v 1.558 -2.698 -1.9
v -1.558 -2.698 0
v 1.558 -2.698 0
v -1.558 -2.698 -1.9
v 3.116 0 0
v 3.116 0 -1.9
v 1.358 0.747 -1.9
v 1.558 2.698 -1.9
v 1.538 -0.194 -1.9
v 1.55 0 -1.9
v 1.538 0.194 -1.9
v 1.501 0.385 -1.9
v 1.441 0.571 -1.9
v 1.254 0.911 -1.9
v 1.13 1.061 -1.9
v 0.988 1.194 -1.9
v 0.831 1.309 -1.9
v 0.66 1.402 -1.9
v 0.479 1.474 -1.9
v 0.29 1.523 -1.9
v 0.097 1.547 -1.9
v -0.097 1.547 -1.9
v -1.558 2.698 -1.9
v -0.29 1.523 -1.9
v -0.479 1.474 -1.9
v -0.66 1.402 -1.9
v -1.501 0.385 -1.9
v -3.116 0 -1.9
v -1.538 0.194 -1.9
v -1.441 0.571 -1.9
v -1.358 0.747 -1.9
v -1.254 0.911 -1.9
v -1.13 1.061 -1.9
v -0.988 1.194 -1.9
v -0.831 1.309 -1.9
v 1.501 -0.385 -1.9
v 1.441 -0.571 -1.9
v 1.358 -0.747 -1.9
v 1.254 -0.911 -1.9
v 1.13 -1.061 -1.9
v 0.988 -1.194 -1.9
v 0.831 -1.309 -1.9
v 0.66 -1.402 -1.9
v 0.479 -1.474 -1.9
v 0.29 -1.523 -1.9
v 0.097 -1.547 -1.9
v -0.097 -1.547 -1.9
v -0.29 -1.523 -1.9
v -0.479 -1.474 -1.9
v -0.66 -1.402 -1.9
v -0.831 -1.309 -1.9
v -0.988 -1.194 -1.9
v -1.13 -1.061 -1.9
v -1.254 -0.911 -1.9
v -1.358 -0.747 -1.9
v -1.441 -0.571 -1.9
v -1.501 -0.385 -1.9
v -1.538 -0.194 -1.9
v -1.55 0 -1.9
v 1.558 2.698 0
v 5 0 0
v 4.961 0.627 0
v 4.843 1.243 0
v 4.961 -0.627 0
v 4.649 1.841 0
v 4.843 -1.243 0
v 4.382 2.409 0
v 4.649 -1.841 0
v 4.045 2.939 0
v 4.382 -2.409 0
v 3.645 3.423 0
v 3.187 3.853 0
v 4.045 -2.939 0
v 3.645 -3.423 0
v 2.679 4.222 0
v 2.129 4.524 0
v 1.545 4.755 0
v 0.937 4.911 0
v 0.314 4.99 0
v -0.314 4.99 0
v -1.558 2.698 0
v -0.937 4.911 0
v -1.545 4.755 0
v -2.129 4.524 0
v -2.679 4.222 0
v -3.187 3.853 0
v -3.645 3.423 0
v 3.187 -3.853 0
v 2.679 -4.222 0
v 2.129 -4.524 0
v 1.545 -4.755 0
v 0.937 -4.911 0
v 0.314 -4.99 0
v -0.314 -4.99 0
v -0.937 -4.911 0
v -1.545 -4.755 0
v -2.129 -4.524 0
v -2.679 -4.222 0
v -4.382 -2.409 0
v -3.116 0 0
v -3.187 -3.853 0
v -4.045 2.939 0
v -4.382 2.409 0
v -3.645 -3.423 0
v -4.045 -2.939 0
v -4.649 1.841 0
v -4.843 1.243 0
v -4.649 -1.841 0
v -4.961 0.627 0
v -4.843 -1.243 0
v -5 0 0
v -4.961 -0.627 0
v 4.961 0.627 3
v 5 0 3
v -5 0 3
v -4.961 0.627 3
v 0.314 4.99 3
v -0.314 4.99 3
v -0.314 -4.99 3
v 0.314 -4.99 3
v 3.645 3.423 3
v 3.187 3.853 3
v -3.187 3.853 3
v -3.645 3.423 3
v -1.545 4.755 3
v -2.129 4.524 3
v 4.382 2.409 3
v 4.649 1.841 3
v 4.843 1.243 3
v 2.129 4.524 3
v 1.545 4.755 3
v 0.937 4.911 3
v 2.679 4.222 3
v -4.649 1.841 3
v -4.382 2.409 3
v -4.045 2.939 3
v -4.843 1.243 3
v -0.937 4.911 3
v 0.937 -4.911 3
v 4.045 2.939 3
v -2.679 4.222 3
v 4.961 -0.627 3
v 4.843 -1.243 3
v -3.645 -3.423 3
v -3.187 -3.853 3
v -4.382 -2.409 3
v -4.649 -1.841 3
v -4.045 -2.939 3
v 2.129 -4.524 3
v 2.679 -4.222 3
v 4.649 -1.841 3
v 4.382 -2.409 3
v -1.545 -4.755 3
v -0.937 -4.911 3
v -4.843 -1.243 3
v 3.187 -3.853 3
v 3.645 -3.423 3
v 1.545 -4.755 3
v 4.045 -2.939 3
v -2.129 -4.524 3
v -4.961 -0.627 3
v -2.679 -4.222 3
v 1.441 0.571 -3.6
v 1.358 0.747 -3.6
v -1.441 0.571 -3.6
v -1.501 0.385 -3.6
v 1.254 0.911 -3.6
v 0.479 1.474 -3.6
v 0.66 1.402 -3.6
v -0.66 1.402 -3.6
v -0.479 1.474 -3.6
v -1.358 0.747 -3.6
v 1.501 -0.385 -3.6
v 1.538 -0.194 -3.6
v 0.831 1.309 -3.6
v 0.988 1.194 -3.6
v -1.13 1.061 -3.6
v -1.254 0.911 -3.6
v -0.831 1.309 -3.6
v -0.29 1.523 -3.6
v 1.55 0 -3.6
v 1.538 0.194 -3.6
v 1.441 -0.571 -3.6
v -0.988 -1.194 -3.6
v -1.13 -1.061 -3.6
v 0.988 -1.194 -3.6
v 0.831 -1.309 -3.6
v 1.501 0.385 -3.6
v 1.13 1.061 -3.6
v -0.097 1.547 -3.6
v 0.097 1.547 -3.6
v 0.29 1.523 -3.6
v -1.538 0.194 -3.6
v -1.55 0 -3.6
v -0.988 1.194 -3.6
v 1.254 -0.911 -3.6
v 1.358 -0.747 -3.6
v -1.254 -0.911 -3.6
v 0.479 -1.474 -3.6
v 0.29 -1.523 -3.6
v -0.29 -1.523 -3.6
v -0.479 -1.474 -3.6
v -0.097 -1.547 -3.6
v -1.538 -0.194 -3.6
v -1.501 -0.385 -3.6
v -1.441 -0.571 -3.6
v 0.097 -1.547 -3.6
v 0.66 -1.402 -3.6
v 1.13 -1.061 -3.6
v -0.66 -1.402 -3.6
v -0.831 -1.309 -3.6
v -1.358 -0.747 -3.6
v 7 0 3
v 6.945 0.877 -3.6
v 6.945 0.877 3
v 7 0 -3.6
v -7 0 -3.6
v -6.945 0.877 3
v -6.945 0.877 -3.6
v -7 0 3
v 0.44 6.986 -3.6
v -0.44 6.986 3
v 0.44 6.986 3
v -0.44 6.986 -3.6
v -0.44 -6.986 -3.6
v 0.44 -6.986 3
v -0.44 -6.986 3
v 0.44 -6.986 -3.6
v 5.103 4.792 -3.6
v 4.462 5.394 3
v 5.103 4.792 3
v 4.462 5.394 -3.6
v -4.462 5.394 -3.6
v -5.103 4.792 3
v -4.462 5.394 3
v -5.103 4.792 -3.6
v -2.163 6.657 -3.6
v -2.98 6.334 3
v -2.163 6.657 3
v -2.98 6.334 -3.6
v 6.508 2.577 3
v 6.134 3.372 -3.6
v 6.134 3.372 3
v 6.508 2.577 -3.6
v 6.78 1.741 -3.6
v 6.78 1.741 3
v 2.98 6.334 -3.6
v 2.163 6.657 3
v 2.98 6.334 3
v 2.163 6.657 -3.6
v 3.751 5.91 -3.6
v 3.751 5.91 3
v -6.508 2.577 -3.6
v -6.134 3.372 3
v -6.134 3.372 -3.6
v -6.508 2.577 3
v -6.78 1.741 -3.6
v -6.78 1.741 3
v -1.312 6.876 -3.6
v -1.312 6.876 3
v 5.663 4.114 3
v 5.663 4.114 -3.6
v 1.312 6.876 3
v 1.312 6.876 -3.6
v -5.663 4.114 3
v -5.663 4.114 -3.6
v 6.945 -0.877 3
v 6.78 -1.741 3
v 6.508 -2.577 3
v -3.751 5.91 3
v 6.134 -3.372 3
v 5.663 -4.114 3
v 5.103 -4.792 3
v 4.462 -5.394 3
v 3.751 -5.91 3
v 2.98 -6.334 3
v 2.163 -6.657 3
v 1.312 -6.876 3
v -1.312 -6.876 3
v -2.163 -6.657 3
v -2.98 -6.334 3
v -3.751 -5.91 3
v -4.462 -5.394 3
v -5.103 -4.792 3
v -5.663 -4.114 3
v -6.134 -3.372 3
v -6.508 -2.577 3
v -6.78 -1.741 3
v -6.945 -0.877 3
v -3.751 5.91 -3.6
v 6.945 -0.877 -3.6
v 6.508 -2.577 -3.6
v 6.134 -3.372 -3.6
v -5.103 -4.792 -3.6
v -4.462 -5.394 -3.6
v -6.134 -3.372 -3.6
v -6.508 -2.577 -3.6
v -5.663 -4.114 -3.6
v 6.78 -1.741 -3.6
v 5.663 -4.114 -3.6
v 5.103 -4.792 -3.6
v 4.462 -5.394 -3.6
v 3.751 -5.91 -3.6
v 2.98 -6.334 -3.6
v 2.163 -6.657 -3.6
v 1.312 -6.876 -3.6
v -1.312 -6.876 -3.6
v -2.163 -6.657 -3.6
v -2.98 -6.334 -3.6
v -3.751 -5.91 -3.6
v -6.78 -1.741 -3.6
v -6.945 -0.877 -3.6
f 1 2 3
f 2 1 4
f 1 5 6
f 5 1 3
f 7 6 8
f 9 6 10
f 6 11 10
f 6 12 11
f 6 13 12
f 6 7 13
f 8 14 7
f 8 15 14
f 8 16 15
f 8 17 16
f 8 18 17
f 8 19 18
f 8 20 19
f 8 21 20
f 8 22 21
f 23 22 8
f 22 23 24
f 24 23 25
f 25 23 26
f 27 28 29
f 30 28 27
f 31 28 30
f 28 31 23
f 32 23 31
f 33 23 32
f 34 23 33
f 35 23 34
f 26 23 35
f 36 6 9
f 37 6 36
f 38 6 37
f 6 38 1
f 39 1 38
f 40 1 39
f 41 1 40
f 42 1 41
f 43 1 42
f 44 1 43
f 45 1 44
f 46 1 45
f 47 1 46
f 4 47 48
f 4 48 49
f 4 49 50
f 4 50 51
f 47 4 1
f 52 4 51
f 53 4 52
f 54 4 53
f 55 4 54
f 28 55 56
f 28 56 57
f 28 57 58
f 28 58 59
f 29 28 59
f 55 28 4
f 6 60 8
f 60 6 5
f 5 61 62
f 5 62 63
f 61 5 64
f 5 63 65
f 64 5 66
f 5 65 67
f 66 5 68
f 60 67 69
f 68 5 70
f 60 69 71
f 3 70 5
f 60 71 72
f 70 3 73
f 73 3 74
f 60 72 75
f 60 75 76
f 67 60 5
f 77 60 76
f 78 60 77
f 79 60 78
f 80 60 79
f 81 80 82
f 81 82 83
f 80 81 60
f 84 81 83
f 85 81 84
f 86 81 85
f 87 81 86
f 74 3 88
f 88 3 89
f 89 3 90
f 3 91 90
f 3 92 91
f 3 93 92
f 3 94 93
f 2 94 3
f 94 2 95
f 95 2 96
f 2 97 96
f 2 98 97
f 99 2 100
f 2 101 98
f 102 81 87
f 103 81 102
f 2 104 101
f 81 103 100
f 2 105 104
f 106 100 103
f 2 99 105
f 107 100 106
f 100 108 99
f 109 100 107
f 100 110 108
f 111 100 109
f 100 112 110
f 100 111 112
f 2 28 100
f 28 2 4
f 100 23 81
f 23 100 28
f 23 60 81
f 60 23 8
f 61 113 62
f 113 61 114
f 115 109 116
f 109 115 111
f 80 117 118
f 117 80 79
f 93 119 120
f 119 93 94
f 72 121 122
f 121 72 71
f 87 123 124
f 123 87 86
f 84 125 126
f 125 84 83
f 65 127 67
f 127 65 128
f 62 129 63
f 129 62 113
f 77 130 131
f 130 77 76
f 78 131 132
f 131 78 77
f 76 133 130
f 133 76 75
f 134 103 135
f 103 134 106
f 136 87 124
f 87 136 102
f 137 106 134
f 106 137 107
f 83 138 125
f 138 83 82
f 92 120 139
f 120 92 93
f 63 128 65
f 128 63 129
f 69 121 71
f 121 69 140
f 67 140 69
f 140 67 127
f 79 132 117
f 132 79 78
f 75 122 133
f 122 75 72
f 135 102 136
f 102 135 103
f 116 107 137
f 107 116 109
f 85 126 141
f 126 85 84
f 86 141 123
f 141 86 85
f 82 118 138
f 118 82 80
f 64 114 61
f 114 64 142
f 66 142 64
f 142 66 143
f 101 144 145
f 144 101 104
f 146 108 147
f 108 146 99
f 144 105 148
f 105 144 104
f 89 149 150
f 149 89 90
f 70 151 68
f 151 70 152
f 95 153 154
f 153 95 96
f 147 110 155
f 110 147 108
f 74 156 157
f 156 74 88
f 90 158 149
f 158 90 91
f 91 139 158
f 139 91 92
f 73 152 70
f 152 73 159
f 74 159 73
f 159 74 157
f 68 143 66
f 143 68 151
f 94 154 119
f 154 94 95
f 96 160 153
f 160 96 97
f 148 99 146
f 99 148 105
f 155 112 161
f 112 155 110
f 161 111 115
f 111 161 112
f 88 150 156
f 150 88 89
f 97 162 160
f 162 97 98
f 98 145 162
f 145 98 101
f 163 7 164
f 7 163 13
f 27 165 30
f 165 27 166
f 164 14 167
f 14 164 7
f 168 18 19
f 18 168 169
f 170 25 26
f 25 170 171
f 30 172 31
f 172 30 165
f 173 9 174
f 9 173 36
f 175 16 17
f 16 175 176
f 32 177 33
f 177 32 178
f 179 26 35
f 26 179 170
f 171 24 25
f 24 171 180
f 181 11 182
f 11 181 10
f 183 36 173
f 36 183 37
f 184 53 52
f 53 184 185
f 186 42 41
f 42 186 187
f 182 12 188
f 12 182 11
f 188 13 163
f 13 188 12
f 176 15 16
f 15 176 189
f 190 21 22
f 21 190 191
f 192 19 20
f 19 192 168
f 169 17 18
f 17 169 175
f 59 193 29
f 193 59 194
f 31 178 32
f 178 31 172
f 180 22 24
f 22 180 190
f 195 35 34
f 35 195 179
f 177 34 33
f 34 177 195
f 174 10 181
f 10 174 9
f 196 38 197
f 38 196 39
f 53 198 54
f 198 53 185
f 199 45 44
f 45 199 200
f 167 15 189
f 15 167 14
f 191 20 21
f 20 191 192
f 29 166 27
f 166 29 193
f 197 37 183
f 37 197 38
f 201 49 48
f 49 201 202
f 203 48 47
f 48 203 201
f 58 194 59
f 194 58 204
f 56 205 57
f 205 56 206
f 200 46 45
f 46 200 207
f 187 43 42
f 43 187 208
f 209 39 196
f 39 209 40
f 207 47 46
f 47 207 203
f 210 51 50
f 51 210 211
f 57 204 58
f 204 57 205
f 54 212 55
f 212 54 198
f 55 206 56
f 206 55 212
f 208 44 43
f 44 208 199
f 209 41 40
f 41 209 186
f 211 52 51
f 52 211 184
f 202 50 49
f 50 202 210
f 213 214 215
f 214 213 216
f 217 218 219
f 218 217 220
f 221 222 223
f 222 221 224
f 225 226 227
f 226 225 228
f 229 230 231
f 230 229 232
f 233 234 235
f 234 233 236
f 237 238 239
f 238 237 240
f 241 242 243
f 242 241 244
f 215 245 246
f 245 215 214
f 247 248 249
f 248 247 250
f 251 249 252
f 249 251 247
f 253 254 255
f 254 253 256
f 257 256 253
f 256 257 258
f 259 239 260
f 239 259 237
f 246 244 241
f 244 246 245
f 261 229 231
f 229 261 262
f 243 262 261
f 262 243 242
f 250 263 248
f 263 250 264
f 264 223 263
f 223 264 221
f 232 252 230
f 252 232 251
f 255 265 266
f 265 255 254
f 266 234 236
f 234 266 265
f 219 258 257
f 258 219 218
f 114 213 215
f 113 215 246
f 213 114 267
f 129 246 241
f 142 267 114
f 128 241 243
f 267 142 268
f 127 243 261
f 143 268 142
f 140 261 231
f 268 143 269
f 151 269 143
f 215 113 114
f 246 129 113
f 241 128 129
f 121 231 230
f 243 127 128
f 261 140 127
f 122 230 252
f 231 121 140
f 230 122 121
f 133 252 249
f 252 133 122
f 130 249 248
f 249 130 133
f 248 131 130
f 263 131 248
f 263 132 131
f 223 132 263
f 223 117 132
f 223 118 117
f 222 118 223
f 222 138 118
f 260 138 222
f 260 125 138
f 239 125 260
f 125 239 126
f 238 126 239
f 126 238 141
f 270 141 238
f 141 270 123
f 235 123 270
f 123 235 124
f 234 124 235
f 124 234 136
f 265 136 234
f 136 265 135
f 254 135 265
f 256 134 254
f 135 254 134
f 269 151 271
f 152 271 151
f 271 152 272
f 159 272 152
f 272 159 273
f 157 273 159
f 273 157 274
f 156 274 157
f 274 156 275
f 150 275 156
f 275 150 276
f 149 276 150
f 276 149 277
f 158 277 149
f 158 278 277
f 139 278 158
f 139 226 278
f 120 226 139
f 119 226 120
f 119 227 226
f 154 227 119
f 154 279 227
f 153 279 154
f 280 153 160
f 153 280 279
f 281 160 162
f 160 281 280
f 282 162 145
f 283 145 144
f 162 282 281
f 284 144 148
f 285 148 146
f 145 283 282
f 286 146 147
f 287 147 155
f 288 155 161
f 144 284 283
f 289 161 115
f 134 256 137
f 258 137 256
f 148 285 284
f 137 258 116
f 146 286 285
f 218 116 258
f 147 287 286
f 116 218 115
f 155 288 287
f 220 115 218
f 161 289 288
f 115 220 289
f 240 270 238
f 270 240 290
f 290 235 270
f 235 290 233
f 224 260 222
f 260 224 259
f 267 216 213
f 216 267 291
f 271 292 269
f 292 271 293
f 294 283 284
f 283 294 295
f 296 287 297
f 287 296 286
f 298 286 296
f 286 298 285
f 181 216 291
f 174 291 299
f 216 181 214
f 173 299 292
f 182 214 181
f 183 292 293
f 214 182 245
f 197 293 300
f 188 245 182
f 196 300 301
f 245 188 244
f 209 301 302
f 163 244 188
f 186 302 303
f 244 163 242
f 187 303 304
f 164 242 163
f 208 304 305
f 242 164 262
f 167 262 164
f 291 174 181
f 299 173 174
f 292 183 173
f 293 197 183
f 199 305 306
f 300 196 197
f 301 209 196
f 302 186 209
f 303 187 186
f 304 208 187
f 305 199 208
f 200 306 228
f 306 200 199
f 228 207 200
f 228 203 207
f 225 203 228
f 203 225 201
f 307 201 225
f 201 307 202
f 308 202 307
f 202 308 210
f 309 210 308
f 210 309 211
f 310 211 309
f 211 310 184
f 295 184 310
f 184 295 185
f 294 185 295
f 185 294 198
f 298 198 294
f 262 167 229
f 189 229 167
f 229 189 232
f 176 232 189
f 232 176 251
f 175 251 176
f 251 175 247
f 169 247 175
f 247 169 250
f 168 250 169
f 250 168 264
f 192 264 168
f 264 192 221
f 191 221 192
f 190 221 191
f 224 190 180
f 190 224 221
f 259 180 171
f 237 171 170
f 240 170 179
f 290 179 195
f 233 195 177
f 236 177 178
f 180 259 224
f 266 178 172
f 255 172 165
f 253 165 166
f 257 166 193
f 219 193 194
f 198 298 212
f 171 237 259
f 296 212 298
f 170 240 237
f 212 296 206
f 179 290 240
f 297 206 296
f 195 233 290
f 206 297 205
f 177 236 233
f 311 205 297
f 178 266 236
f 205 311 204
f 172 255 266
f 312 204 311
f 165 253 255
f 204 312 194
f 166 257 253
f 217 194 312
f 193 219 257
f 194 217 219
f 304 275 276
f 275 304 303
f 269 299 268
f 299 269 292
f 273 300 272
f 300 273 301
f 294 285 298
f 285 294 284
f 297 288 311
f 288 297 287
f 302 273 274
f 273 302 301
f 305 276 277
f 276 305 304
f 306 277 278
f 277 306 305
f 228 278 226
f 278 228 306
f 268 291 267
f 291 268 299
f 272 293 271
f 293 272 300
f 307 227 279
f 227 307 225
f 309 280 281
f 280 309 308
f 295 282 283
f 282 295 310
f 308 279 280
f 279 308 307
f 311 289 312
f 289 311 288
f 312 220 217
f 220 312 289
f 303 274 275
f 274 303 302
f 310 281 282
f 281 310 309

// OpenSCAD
$fn = 50;


difference() {
	union() {
		translate(v = [0, 0, -3.6000000000]) {
			cylinder(h = 6.6000000000, r = 7.0000000000);
		}
	}
	union() {
		translate(v = [0, 0, 0]) {
			rotate(a = [0, 0, 0]) {
				difference() {
					union() {
						translate(v = [0, 0, -1.9000000000]) {
							linear_extrude(height = 1.9000000000) {
								polygon(points = [[3.1158000000, 0.0000000000], [1.5579000000, 2.6983619531], [-1.5579000000, 2.6983619531], [-3.1158000000, 0.0000000000], [-1.5579000000, -2.6983619531], [1.5579000000, -2.6983619531]]);
							}
						}
					}
					union();
				}
			}
		}
		#cylinder(h = 3, r = 5.0000000000);
		#translate(v = [0, 0, -100.0000000000]) {
			cylinder(h = 200, r = 1.5500000000);
		}
	}
}
